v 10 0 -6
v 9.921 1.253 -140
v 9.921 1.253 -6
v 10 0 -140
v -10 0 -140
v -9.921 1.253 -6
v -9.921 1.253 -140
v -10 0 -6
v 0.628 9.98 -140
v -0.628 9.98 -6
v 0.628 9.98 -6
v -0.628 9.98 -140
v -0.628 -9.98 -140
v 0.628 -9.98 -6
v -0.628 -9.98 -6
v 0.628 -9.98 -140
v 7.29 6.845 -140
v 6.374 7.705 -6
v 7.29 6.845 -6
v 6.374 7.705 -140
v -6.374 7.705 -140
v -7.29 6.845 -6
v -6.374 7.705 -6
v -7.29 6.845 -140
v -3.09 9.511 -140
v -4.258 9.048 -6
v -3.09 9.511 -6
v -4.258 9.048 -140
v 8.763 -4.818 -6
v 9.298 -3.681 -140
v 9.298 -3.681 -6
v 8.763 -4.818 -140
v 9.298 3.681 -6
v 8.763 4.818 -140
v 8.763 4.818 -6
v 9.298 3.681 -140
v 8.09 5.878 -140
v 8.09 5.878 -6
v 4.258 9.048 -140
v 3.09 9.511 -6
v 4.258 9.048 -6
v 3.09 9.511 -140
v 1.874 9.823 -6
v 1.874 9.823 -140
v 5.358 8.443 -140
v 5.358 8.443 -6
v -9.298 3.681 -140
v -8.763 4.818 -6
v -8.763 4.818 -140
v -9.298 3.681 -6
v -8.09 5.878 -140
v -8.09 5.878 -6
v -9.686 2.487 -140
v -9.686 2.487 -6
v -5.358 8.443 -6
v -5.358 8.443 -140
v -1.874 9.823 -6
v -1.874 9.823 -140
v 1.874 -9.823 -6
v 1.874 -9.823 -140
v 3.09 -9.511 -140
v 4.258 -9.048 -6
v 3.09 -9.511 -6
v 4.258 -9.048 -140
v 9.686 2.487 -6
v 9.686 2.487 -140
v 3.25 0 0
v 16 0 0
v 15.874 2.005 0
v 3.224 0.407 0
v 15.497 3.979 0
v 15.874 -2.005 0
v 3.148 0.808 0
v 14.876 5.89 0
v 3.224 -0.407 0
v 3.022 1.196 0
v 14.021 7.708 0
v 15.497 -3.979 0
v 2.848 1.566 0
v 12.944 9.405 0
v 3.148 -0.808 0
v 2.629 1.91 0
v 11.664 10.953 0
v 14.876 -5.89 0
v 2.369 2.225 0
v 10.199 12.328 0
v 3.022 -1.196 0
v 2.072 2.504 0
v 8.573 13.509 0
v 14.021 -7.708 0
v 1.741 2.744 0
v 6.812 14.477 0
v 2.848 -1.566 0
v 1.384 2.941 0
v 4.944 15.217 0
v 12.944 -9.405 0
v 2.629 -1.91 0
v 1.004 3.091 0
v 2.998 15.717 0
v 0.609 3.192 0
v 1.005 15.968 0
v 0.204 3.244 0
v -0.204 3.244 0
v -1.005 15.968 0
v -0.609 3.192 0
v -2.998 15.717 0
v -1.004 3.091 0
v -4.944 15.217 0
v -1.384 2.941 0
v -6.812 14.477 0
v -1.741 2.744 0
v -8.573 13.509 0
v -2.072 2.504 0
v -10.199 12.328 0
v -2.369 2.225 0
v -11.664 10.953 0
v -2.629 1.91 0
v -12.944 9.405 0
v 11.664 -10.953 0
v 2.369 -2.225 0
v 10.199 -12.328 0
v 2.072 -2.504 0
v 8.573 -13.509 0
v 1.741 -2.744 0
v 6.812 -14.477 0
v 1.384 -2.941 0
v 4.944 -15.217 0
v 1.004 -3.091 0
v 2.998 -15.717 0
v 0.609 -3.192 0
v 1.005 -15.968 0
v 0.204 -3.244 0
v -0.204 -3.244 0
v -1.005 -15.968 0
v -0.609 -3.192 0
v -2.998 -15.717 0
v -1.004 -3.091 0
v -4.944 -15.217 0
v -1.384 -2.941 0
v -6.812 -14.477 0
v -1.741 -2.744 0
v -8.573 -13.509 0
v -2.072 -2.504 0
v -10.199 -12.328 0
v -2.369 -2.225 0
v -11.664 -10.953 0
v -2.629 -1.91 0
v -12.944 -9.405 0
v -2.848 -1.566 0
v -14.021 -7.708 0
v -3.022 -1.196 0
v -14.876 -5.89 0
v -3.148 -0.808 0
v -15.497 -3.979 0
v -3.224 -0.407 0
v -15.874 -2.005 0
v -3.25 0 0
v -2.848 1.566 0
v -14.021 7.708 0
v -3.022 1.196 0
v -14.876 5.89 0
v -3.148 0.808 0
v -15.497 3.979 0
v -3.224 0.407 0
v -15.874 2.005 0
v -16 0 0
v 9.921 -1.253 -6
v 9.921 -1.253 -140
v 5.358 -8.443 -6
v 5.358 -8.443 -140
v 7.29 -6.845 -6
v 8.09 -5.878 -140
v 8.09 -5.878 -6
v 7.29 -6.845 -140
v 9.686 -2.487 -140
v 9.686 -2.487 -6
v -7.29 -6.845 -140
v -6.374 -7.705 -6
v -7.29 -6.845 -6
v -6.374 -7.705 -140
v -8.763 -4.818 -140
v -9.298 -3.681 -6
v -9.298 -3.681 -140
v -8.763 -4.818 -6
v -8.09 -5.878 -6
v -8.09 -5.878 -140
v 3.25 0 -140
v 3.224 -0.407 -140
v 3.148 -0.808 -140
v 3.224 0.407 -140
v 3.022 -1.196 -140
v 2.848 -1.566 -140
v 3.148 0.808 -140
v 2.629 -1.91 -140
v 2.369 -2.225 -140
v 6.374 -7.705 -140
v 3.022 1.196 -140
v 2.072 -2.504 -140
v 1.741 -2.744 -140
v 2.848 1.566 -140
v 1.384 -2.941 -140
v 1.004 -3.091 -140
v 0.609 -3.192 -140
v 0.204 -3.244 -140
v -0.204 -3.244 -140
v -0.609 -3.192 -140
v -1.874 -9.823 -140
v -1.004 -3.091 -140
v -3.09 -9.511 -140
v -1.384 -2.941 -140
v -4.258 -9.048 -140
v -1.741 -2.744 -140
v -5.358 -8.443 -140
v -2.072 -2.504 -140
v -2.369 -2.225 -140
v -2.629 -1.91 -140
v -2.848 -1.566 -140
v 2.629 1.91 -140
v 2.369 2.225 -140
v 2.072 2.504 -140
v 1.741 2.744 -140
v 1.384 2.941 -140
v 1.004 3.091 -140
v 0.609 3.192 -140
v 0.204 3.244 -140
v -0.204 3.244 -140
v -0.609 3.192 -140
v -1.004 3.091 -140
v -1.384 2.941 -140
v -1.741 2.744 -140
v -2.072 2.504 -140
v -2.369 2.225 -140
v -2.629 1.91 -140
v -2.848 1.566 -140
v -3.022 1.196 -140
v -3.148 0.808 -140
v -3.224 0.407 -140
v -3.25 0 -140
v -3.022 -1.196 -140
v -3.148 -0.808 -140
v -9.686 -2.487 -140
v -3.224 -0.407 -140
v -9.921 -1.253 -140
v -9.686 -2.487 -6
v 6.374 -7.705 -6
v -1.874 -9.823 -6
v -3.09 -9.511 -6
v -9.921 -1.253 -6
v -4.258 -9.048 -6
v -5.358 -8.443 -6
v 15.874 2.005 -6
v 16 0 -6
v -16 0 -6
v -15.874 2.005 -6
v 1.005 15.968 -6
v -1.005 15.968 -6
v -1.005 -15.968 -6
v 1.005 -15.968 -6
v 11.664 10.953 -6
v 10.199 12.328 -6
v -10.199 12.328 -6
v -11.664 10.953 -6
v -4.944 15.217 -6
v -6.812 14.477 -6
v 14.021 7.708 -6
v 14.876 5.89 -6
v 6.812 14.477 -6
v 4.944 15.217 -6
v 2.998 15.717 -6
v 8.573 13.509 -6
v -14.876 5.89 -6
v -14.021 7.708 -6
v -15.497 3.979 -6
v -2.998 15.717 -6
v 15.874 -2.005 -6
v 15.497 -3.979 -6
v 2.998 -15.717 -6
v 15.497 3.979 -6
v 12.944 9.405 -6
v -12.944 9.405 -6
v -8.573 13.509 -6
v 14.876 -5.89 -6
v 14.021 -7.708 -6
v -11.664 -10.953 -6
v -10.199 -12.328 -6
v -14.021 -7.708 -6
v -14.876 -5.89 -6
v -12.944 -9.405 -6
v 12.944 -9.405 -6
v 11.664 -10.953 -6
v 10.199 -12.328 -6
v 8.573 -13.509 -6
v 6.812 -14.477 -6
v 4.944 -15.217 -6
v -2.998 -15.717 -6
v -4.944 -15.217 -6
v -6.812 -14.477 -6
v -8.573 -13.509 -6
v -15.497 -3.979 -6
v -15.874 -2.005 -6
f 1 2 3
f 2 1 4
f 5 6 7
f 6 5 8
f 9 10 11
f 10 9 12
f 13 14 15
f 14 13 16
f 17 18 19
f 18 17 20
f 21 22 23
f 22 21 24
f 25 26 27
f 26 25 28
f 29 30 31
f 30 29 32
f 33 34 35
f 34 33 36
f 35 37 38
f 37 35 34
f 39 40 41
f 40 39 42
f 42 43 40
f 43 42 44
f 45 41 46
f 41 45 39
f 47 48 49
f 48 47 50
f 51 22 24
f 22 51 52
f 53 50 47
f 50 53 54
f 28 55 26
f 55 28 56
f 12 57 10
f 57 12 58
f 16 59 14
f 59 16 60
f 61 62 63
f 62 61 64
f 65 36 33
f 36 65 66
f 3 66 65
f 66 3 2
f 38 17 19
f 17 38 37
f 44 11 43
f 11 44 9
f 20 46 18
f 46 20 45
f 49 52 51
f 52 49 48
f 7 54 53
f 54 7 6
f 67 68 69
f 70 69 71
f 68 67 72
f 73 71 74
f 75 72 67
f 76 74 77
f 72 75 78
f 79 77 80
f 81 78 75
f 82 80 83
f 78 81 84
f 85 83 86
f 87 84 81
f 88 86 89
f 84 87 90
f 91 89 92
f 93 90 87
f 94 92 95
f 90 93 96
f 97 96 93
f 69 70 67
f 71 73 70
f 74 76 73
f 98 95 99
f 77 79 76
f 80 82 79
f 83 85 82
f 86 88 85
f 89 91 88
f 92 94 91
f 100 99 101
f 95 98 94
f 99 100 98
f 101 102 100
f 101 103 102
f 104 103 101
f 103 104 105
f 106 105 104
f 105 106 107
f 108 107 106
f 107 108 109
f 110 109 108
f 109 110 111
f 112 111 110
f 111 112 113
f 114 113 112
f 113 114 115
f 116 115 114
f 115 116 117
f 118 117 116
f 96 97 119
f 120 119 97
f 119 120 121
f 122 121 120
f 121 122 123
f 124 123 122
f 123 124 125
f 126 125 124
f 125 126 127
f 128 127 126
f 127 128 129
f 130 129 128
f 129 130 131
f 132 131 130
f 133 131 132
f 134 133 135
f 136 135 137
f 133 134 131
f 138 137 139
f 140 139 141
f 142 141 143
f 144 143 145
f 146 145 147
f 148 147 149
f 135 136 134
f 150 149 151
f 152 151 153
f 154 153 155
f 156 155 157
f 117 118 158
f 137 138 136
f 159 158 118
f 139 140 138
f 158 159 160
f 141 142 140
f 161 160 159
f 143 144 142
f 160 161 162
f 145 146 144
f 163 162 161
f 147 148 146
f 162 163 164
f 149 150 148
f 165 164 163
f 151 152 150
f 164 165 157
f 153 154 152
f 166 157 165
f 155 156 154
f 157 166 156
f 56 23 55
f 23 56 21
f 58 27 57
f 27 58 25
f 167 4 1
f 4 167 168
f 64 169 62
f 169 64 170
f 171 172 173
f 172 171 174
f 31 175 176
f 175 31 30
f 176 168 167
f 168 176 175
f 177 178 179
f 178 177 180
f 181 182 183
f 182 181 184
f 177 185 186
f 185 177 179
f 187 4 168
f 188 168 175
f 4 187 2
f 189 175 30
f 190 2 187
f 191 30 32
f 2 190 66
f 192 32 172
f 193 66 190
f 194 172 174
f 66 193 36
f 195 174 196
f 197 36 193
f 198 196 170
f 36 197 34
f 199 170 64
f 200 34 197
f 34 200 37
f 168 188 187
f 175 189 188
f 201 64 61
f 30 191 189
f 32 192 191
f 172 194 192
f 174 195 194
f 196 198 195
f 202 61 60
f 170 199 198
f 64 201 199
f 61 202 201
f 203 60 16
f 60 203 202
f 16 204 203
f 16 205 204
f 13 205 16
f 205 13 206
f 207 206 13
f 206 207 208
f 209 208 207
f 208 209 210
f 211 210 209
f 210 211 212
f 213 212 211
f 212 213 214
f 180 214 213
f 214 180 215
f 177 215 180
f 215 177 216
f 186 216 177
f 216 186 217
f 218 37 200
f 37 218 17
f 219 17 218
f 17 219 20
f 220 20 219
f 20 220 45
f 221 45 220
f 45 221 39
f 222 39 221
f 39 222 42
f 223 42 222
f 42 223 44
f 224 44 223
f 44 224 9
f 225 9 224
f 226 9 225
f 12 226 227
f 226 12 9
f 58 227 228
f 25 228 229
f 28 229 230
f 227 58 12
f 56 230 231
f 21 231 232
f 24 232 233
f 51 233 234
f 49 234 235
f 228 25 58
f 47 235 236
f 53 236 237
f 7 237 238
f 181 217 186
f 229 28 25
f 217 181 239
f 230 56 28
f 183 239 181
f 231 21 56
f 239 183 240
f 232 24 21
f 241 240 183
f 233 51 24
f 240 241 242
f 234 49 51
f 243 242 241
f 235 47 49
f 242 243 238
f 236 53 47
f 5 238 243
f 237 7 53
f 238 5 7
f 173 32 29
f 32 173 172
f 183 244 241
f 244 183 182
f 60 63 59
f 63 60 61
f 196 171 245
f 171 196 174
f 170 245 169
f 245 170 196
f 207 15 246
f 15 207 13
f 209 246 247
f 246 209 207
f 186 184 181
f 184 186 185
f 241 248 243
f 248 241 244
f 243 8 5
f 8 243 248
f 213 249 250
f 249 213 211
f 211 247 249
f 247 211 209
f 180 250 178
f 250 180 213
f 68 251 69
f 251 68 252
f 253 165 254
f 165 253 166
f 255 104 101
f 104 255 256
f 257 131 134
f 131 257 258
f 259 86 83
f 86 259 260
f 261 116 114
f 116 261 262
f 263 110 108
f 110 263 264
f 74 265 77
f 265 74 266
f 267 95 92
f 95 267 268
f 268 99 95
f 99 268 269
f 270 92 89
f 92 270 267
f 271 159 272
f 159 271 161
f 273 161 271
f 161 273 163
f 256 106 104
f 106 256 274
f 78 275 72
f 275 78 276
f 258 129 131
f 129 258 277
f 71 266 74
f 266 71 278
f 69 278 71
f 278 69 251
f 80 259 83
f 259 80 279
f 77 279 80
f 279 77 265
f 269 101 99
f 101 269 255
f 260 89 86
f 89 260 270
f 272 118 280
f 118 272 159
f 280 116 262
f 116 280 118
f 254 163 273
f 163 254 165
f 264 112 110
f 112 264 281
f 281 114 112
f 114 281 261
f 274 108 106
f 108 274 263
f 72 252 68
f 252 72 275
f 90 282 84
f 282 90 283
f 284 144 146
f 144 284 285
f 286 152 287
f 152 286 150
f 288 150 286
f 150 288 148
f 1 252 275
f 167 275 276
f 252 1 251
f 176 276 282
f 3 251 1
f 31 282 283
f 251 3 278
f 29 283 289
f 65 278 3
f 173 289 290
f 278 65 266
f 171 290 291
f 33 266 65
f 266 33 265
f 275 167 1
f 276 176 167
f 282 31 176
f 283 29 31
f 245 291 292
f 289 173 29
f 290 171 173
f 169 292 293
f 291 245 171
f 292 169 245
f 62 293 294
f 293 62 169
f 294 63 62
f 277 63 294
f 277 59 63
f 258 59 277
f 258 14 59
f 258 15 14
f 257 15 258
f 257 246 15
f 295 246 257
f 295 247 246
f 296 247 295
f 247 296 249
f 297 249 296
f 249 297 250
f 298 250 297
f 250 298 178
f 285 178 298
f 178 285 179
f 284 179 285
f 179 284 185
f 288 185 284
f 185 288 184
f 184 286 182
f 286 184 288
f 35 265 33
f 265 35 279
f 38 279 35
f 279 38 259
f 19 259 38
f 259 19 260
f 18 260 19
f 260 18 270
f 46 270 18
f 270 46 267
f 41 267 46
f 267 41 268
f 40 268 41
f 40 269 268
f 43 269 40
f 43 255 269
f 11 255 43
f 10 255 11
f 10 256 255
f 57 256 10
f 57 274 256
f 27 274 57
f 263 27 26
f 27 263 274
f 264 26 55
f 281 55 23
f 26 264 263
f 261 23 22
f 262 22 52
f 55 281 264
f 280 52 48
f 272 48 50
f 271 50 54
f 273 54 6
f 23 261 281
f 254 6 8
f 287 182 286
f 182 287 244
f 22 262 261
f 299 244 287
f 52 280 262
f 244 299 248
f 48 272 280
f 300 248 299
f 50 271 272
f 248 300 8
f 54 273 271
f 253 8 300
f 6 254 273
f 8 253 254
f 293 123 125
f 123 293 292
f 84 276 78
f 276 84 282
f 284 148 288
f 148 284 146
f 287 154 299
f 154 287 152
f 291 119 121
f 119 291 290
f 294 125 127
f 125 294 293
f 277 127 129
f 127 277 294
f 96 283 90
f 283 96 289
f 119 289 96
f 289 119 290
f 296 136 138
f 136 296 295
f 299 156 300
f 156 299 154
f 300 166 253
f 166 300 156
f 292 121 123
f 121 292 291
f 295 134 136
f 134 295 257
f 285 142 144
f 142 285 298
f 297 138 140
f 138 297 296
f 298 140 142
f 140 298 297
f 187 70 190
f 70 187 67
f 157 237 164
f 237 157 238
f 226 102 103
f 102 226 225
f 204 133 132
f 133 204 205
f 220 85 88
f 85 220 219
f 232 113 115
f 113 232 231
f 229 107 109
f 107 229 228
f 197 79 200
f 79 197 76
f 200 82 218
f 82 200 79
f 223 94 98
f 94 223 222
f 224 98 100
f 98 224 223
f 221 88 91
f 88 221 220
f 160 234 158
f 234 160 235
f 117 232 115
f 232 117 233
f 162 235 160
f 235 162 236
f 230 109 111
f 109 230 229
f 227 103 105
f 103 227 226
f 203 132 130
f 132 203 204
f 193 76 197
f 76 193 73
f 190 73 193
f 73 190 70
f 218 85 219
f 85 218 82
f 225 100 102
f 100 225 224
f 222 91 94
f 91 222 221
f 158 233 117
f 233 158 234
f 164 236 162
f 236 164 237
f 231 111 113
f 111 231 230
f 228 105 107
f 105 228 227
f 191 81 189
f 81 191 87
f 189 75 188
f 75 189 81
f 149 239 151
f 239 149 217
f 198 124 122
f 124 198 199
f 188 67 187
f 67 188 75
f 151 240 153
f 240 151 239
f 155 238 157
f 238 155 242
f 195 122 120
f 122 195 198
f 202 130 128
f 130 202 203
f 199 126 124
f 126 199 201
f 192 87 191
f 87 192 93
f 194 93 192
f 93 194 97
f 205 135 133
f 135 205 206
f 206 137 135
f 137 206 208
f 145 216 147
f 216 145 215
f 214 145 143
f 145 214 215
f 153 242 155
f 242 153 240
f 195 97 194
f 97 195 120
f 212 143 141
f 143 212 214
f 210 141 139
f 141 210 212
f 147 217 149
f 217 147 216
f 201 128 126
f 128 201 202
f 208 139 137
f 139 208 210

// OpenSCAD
$fn = 50;


difference() {
	union() {
		translate(v = [0, 0, -140.0000000000]) {
			cylinder(h = 140, r = 10.0000000000);
		}
		translate(v = [0, 0, -6.0000000000]) {
			cylinder(h = 6, r = 16.0000000000);
		}
	}
	union() {
		#translate(v = [0, 0, -140]) {
			cylinder(h = 140, r = 3.2500000000);
		}
	}
}
